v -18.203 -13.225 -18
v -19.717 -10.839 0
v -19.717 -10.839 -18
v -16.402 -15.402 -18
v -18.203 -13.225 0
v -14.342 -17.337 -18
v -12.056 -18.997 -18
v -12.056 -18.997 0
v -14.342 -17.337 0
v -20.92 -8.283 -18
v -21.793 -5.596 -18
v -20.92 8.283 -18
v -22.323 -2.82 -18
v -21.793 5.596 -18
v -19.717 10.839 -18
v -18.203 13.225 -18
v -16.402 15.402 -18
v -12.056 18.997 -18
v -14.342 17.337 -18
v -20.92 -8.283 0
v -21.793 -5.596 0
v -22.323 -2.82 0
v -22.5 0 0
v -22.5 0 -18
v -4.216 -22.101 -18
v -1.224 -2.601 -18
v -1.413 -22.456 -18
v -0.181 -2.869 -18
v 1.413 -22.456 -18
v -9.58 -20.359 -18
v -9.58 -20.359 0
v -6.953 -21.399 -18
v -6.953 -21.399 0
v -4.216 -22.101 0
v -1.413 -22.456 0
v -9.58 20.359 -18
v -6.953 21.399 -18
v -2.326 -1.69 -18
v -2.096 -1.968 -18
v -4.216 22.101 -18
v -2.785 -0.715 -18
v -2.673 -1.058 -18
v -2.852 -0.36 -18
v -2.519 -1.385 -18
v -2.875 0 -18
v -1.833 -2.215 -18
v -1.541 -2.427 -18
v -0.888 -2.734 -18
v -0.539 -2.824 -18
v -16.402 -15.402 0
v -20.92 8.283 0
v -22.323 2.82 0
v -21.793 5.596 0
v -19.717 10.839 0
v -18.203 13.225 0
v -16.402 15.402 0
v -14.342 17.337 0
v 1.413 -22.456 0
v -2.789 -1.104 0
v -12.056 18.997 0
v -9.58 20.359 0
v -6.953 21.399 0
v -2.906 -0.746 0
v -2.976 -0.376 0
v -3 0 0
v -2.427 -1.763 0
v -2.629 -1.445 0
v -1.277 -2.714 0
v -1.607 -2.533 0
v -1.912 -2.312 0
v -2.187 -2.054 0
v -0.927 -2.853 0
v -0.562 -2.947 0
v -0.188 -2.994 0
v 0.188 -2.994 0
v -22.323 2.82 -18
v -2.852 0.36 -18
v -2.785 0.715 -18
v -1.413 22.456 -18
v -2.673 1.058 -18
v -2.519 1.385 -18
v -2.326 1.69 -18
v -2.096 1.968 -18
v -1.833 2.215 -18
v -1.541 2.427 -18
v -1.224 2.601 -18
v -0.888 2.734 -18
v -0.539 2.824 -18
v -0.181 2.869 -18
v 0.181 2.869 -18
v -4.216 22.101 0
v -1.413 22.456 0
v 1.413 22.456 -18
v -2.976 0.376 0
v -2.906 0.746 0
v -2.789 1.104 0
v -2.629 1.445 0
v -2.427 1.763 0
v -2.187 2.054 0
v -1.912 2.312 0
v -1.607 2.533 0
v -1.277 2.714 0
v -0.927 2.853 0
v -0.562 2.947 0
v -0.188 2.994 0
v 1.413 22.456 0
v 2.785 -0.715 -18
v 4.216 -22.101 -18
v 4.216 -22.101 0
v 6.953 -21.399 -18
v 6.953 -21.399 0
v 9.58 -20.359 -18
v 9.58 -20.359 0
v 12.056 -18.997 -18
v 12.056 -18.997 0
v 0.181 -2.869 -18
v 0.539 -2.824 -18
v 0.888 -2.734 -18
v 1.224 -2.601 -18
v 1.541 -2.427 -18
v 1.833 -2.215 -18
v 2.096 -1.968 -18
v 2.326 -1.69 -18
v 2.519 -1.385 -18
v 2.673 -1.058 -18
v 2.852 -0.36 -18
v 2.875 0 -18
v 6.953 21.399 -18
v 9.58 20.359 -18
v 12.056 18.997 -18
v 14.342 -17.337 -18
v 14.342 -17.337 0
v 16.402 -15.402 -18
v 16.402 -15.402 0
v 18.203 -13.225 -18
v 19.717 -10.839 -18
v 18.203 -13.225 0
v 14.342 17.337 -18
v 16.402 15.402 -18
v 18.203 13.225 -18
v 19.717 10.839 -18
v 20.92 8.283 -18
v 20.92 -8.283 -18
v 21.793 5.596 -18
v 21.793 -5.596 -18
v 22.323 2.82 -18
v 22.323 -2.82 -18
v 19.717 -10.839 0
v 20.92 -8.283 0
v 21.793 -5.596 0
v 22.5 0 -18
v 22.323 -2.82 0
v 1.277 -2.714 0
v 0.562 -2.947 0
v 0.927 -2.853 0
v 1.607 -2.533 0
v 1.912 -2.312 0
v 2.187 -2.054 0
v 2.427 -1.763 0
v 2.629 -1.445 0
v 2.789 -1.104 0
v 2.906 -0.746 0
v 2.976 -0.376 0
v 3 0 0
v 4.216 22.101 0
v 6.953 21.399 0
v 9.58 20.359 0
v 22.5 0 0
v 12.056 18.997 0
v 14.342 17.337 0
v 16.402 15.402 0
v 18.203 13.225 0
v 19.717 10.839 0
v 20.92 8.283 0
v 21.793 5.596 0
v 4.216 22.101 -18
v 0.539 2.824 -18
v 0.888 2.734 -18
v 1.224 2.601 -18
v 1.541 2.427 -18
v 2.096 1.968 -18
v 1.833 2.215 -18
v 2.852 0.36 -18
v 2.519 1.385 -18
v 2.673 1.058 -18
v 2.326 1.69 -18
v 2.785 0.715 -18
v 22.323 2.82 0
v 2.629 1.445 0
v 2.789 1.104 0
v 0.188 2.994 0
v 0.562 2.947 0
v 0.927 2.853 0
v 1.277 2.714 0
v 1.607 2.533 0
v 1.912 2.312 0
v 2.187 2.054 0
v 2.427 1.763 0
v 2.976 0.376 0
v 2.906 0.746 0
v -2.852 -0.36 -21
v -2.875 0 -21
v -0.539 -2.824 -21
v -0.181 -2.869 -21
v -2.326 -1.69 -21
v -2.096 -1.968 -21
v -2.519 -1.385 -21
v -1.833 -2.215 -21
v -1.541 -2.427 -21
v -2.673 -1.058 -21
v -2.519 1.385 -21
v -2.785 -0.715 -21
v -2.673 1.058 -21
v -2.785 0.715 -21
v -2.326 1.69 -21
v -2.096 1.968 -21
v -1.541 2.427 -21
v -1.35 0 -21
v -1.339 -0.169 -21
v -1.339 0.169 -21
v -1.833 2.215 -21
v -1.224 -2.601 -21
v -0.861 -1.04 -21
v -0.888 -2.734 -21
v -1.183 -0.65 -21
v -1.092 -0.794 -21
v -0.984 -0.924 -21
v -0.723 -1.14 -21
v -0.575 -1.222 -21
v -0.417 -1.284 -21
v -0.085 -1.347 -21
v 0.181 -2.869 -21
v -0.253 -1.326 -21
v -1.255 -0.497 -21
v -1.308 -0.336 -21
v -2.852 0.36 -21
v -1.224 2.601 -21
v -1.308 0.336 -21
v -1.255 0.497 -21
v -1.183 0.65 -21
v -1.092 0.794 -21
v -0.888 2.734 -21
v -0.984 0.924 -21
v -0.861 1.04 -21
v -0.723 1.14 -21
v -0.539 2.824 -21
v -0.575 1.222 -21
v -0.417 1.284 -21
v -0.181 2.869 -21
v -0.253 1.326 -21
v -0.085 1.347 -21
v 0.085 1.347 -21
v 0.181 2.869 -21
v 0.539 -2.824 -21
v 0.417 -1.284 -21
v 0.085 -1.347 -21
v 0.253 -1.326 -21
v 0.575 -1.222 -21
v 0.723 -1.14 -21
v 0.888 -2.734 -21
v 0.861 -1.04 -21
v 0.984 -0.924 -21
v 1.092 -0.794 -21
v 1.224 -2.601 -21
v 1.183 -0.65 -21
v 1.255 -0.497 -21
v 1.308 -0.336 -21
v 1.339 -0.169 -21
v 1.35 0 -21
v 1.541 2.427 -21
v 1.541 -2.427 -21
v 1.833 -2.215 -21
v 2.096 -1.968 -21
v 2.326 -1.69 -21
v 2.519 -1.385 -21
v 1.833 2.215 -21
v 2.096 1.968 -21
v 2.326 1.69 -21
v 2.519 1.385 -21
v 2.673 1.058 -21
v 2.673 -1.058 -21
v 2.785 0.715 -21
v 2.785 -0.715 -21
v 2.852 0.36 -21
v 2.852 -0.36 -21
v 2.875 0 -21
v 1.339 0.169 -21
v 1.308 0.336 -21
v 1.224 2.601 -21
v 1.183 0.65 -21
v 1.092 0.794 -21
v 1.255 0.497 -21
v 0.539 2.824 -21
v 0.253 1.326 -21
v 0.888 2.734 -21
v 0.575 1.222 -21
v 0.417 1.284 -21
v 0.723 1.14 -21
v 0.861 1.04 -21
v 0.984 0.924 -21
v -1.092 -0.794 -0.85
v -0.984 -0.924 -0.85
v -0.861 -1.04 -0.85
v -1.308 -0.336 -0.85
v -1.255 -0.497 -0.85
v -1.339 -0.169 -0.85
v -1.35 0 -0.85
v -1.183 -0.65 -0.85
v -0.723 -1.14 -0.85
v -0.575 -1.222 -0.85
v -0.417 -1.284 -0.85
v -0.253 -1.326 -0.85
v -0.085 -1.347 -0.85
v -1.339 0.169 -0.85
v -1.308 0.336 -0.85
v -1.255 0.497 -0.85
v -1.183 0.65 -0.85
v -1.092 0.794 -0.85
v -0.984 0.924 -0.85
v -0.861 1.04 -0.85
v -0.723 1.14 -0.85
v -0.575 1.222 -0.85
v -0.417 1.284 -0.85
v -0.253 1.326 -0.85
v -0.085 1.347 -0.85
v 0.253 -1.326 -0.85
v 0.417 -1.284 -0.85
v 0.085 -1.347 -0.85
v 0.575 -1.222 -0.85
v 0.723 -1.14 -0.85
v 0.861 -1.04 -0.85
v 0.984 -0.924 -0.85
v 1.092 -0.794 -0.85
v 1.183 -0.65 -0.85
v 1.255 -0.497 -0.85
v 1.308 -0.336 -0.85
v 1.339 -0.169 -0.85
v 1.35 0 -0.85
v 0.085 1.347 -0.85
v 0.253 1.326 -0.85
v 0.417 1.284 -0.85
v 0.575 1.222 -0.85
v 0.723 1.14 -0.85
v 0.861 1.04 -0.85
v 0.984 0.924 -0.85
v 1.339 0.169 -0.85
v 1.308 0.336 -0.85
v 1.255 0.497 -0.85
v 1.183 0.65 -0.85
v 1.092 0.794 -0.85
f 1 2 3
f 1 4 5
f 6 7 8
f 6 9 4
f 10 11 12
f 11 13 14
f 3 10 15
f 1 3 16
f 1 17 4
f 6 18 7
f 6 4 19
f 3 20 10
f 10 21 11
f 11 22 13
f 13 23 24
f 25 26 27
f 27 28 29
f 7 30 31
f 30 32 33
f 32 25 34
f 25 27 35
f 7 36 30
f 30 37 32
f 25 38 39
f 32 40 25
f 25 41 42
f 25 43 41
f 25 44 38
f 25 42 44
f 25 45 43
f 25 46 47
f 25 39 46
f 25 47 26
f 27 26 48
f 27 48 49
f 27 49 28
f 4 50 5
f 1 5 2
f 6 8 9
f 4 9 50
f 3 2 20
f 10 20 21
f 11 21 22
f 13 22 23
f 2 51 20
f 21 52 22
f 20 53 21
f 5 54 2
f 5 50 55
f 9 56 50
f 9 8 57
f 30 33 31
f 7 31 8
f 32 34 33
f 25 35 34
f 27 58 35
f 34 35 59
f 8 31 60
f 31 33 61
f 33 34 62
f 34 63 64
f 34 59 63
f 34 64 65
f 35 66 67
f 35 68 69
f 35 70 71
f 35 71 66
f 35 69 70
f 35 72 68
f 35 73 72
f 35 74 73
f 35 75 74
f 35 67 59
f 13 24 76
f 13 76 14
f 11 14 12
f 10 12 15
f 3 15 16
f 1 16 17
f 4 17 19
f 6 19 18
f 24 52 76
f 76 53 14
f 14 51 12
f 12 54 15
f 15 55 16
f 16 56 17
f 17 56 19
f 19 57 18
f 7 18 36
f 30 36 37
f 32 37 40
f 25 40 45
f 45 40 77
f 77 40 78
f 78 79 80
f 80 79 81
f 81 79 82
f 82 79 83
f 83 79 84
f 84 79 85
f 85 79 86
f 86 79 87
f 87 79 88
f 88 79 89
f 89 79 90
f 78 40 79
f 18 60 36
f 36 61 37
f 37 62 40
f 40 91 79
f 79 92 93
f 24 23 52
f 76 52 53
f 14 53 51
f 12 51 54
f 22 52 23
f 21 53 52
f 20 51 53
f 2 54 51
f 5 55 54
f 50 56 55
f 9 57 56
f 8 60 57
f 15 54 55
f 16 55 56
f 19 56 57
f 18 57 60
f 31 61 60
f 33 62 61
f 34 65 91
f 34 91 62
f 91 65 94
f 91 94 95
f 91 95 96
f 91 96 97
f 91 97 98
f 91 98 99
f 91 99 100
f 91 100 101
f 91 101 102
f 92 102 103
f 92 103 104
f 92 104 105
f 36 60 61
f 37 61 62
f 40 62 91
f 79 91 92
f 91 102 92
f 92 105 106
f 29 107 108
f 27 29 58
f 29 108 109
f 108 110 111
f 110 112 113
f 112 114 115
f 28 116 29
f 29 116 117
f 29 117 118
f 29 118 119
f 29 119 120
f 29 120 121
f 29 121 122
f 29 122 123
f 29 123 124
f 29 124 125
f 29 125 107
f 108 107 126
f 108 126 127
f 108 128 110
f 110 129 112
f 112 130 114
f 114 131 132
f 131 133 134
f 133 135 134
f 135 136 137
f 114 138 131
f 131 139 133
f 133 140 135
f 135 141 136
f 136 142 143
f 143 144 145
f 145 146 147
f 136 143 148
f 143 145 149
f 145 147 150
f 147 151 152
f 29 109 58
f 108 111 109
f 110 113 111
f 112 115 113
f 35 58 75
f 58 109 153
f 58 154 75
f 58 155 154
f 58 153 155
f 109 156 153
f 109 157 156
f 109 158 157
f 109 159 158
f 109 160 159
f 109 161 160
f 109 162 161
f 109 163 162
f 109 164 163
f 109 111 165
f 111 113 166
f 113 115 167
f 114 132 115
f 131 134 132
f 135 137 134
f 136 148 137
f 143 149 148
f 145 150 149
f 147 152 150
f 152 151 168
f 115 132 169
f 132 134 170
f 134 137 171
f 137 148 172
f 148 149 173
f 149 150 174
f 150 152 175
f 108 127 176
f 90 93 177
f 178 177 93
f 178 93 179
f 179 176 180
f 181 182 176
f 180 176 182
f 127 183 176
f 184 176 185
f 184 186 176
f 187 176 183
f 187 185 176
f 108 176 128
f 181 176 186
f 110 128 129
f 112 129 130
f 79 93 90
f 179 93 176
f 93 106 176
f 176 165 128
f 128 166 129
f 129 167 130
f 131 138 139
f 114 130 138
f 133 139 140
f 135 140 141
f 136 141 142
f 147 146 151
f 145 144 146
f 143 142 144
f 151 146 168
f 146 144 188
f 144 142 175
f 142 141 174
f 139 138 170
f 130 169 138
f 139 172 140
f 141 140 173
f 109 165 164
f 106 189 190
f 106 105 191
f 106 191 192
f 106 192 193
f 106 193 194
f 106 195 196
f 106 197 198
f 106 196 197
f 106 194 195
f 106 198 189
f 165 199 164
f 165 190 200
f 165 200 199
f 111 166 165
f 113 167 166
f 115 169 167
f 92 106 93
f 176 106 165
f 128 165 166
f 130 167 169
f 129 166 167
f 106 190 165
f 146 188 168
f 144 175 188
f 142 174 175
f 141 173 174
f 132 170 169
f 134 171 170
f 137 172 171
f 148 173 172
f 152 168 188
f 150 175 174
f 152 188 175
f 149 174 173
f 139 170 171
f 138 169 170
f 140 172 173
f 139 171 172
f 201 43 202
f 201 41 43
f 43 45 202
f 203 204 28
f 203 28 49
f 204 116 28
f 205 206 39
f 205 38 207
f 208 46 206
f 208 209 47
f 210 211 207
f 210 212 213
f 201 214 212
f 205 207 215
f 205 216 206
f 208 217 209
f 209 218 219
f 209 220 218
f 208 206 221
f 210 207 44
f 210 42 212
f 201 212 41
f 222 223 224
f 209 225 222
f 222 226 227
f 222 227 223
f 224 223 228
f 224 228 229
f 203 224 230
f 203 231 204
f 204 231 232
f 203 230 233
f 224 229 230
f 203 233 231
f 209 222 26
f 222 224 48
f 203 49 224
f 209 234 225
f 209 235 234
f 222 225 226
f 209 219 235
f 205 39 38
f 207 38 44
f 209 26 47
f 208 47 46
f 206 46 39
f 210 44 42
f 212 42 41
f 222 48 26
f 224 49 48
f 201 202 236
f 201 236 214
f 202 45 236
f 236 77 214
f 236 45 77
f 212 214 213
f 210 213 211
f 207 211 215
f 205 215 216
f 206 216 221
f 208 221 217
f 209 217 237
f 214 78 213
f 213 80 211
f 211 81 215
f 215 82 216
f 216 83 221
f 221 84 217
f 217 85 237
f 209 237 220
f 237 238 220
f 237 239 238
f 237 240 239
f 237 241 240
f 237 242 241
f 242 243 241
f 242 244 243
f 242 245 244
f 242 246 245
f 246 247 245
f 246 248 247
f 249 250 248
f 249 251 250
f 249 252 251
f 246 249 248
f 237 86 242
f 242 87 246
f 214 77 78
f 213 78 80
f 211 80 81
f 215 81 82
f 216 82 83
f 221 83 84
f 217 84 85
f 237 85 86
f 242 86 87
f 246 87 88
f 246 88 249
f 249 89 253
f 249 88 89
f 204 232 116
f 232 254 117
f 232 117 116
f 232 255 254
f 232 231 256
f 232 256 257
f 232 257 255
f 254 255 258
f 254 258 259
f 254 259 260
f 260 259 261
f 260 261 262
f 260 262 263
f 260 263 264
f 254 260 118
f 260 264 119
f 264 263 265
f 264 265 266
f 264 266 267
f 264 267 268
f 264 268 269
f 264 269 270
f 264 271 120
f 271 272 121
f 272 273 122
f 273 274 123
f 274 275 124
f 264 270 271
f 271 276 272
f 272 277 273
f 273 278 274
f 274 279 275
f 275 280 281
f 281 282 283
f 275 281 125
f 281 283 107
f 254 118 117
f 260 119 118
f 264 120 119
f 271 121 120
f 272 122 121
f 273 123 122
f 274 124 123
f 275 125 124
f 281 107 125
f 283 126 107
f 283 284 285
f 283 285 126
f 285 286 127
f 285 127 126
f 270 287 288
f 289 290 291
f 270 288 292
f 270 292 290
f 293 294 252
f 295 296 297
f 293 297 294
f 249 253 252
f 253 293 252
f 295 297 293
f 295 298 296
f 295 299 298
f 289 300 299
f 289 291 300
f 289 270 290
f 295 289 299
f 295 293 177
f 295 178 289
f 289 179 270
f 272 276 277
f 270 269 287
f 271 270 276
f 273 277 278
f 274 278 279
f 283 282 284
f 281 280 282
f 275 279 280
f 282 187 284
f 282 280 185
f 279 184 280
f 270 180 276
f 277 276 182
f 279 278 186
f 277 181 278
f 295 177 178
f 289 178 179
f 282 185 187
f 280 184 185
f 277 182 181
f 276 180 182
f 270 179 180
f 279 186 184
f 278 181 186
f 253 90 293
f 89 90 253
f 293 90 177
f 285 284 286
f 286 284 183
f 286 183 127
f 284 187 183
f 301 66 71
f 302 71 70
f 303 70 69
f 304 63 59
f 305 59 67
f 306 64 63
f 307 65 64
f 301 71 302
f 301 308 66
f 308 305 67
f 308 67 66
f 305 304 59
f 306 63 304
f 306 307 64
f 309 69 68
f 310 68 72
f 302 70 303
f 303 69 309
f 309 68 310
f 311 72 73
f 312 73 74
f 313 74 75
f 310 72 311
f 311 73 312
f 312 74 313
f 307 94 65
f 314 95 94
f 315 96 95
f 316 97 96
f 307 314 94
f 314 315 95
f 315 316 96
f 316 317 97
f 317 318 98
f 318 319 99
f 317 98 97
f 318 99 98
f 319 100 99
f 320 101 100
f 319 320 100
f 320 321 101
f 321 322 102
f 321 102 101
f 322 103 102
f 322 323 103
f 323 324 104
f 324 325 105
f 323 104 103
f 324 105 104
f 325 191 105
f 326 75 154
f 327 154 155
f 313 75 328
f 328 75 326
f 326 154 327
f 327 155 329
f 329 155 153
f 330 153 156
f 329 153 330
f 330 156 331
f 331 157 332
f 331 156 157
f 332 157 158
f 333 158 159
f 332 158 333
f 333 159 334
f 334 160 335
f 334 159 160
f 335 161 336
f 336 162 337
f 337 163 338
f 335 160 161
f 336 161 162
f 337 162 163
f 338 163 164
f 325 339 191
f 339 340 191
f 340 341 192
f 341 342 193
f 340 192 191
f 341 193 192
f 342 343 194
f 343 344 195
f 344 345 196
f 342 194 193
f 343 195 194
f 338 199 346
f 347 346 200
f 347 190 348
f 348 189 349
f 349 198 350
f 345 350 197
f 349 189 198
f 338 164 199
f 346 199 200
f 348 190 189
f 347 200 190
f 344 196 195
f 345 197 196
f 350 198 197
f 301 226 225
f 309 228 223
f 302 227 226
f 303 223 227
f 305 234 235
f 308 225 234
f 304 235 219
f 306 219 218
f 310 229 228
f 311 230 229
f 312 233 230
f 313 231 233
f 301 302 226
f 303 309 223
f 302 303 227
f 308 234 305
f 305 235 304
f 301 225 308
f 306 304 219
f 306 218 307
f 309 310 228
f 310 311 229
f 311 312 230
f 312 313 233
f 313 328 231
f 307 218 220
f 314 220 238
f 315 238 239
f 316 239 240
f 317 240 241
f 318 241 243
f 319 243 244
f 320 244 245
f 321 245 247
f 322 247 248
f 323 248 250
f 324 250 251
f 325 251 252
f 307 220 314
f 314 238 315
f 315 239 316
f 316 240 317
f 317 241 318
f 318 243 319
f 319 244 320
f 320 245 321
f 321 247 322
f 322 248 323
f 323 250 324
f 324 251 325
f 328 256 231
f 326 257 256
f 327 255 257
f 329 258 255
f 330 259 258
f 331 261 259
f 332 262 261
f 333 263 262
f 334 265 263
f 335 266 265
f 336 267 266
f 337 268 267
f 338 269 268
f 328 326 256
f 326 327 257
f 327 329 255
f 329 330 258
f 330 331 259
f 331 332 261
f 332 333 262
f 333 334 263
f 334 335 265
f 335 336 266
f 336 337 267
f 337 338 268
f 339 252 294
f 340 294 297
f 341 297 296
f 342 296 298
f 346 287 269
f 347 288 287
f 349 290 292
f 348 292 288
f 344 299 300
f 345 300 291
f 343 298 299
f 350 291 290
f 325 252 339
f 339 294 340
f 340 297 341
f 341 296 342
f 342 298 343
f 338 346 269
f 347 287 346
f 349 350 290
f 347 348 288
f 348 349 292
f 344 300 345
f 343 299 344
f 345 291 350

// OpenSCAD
$fn = 50;


difference() {
	union() {
		translate(v = [0, 0, -18.0000000000]) {
			cylinder(h = 18, r = 22.5000000000);
		}
		#translate(v = [0, 0, -21.0000000000]) {
			cylinder(h = 21, r = 2.8750000000);
		}
	}
	union() {
		translate(v = [0, 0, 0]) {
			rotate(a = [0, 0, 0]) {
				difference() {
					union() {
						translate(v = [0, 0, -21.0000000000]) {
							cylinder(h = 21, r = 1.0000000000);
						}
						translate(v = [0, 0, -0.8500000000]) {
							cylinder(h = 0.8500000000, r1 = 1.3500000000, r2 = 3.0000000000);
						}
						translate(v = [0, 0, -21.0000000000]) {
							cylinder(h = 21, r = 1.3500000000);
						}
						translate(v = [0, 0, -21.0000000000]) {
							cylinder(h = 21, r = 1.0000000000);
						}
					}
					union();
				}
			}
		}
	}
}
